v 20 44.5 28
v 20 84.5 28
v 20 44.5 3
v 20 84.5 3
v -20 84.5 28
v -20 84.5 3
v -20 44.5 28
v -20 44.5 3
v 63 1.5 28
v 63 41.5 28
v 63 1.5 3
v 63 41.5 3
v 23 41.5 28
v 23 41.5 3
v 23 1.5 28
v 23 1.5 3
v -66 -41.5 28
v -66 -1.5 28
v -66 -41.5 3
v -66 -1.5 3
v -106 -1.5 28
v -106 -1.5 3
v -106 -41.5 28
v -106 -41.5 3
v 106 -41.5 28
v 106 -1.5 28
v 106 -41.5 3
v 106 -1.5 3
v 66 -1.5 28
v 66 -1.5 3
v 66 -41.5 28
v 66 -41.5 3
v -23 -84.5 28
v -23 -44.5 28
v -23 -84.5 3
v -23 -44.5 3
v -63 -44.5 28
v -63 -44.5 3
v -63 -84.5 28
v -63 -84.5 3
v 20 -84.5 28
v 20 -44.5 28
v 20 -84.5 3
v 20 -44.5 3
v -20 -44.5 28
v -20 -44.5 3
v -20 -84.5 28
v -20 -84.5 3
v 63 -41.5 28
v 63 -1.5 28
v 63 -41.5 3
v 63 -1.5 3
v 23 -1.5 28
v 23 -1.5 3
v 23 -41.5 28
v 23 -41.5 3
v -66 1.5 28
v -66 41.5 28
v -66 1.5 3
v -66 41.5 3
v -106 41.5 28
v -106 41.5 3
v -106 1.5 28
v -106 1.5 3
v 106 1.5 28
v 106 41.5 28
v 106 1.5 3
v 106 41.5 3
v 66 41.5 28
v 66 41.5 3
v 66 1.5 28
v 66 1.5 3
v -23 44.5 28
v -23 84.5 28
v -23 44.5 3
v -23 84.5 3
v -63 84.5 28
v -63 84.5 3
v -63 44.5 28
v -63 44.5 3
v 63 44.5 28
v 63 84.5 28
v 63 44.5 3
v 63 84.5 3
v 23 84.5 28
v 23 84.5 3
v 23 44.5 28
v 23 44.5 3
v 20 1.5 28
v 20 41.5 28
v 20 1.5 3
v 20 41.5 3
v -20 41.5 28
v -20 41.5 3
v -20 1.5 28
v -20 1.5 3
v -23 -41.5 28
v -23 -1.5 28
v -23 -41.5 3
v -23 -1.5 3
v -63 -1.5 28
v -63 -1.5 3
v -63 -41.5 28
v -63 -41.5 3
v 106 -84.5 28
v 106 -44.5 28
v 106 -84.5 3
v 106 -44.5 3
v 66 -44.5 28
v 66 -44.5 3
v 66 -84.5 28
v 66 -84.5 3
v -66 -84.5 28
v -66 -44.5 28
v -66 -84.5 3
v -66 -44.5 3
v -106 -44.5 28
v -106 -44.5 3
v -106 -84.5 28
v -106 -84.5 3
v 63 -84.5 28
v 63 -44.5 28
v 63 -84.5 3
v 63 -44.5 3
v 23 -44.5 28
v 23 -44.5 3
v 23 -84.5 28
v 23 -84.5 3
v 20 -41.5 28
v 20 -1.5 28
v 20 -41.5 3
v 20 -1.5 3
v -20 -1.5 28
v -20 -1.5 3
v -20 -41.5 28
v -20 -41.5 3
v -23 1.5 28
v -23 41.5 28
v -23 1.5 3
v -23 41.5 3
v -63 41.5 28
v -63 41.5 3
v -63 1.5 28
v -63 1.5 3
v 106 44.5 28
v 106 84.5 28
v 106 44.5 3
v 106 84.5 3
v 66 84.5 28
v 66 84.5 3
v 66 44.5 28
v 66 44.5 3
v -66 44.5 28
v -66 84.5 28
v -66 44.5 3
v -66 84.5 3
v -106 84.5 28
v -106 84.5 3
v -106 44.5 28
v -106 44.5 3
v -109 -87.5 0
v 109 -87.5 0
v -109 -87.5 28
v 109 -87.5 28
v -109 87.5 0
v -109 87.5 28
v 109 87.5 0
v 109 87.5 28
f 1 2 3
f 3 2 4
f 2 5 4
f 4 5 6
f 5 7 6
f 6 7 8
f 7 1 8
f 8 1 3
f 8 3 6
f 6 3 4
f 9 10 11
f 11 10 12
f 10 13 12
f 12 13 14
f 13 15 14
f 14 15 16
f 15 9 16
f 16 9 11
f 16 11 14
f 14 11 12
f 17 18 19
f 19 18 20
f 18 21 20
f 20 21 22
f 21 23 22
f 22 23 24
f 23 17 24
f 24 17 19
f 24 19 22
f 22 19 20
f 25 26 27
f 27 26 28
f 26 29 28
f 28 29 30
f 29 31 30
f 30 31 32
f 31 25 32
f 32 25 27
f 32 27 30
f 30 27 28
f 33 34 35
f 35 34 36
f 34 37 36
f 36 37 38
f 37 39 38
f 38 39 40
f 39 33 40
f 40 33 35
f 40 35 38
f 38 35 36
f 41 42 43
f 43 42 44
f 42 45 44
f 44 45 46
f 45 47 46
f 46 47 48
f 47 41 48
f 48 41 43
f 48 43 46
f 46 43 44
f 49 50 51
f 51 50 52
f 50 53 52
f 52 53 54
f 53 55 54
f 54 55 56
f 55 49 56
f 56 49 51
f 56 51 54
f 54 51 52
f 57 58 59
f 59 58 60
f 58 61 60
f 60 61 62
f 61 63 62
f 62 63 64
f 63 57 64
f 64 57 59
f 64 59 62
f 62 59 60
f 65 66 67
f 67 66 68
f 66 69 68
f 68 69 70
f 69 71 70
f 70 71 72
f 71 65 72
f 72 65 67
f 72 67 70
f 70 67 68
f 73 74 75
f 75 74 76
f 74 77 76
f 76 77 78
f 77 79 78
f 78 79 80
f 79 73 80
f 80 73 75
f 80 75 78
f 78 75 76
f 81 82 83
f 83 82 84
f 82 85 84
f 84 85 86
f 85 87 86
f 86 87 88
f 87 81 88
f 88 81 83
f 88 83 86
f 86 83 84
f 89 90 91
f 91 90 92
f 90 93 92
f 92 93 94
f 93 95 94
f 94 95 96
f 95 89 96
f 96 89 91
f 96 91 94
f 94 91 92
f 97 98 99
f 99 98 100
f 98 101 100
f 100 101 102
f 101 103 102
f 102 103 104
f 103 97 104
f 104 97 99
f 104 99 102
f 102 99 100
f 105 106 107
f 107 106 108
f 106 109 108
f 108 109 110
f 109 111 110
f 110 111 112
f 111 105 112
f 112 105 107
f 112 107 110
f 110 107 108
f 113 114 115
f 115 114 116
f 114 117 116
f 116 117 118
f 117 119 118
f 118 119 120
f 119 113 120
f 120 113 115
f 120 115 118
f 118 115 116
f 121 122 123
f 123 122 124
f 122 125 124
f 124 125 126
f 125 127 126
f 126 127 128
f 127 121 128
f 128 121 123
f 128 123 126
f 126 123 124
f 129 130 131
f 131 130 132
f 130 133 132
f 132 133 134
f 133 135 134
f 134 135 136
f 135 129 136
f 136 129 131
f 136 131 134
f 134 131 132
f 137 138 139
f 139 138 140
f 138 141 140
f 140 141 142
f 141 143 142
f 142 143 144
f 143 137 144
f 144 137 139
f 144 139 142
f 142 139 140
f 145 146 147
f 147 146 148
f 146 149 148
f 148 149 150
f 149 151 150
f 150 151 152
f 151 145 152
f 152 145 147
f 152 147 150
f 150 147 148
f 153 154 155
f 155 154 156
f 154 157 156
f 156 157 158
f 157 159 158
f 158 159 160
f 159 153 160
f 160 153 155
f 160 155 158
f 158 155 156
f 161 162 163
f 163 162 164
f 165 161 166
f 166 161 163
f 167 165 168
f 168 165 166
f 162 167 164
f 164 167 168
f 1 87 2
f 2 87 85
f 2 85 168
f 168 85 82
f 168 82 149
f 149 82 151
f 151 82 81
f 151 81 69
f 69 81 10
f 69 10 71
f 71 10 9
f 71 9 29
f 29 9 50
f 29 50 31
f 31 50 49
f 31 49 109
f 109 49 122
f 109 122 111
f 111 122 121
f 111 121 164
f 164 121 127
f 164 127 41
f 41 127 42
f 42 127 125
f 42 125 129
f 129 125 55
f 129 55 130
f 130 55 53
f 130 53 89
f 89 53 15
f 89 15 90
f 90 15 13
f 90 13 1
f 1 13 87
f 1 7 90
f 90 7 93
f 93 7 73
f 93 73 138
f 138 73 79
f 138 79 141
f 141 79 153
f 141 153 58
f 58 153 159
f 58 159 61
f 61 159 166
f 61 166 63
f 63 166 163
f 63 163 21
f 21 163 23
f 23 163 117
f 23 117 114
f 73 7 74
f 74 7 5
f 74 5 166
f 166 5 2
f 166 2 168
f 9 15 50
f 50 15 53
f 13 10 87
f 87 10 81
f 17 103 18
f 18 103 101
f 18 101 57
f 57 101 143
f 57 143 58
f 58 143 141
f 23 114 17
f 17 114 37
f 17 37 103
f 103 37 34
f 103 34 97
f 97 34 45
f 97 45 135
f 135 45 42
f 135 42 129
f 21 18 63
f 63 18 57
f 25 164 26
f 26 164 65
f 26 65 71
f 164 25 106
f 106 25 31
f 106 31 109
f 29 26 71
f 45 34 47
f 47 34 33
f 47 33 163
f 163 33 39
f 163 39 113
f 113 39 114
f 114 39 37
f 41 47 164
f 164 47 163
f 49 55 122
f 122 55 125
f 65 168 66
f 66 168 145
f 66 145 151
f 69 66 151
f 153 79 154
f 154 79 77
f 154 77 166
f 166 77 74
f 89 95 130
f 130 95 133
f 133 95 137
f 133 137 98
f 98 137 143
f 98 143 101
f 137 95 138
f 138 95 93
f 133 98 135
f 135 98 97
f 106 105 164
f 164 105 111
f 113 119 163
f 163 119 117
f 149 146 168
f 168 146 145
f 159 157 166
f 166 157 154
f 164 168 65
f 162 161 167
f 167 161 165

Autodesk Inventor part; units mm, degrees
ref_plane "YZ Plane" through (0, 0, 0) normal (1, 0, 0) x (0, 1, 0)
ref_plane "XZ Plane" through (0, 0, 0) normal (0, 1, 0) x (-1, 0, 0)
ref_plane "XY Plane" through (0, 0, 0) normal (0, 0, 1) x (1, 0, 0)
sketch "Sketch1" plane through (0, 0, 0) normal (0, 0, 1) x (1, 0, 0)
  line L0 (-109, -87.5) -> (109, -87.5)
  line L1 (109, -87.5) -> (109, 87.5)
  line L2 (109, 87.5) -> (-109, 87.5)
  line L3 (-109, 87.5) -> (-109, -87.5)
  line L4 (-109, -87.5) -> (109, 87.5) construction
  line L5 (109, -87.5) -> (-109, 87.5) construction
  point P0 (0, 0)
  dimension "d0" = 218
  dimension "d1" = 175
extrude "Extrusion1" add sketch "Sketch1" along normal blind 28
sketch "Sketch2" plane through (0, 0, 28) normal (0, 0, 1) x (1, 0, 0)
  line L0 (-106, 84.5) -> (-66, 84.5)
  line L1 (-66, 84.5) -> (-66, 44.5)
  line L2 (-66, 44.5) -> (-106, 44.5)
  line L3 (-106, 44.5) -> (-106, 84.5)
  line L4 (-106, 84.5) -> (-66, 44.5) construction
  line L5 (-66, 84.5) -> (-106, 44.5) construction
  line L6 (109, 87.5) -> (-109, 87.5) projected
  line L7 (-109, 87.5) -> (-109, -87.5) projected
  line L8 (-63, 84.5) -> (-23, 84.5)
  line L9 (-23, 84.5) -> (-23, 44.5)
  line L10 (-23, 44.5) -> (-63, 44.5)
  line L11 (-63, 44.5) -> (-63, 84.5)
  line L12 (-63, 84.5) -> (-23, 44.5) construction
  line L13 (-23, 84.5) -> (-63, 44.5) construction
  line L14 (-20, 84.5) -> (20, 84.5)
  line L15 (20, 84.5) -> (20, 44.5)
  line L16 (20, 44.5) -> (-20, 44.5)
  line L17 (-20, 44.5) -> (-20, 84.5)
  line L18 (-20, 84.5) -> (20, 44.5) construction
  line L19 (20, 84.5) -> (-20, 44.5) construction
  line L20 (23, 84.5) -> (63, 84.5)
  line L21 (63, 84.5) -> (63, 44.5)
  line L22 (63, 44.5) -> (23, 44.5)
  line L23 (23, 44.5) -> (23, 84.5)
  line L24 (23, 84.5) -> (63, 44.5) construction
  line L25 (63, 84.5) -> (23, 44.5) construction
  line L26 (66, 84.5) -> (106, 84.5)
  line L27 (106, 84.5) -> (106, 44.5)
  line L28 (106, 44.5) -> (66, 44.5)
  line L29 (66, 44.5) -> (66, 84.5)
  line L30 (66, 84.5) -> (106, 44.5) construction
  line L31 (106, 84.5) -> (66, 44.5) construction
  line L32 (-106, 41.5) -> (-66, 41.5)
  line L33 (-66, 41.5) -> (-66, 1.5)
  line L34 (-66, 1.5) -> (-106, 1.5)
  line L35 (-106, 1.5) -> (-106, 41.5)
  line L36 (-106, 41.5) -> (-66, 1.5) construction
  line L37 (-66, 41.5) -> (-106, 1.5) construction
  line L38 (-63, 41.5) -> (-23, 41.5)
  line L39 (-23, 41.5) -> (-23, 1.5)
  line L40 (-23, 1.5) -> (-63, 1.5)
  line L41 (-63, 1.5) -> (-63, 41.5)
  line L42 (-63, 41.5) -> (-23, 1.5) construction
  line L43 (-23, 41.5) -> (-63, 1.5) construction
  line L44 (-20, 41.5) -> (20, 41.5)
  line L45 (20, 41.5) -> (20, 1.5)
  line L46 (20, 1.5) -> (-20, 1.5)
  line L47 (-20, 1.5) -> (-20, 41.5)
  line L48 (-20, 41.5) -> (20, 1.5) construction
  line L49 (20, 41.5) -> (-20, 1.5) construction
  line L50 (23, 41.5) -> (63, 41.5)
  line L51 (63, 41.5) -> (63, 1.5)
  line L52 (63, 1.5) -> (23, 1.5)
  line L53 (23, 1.5) -> (23, 41.5)
  line L54 (23, 41.5) -> (63, 1.5) construction
  line L55 (63, 41.5) -> (23, 1.5) construction
  line L56 (66, 41.5) -> (106, 41.5)
  line L57 (106, 41.5) -> (106, 1.5)
  line L58 (106, 1.5) -> (66, 1.5)
  line L59 (66, 1.5) -> (66, 41.5)
  line L60 (66, 41.5) -> (106, 1.5) construction
  line L61 (106, 41.5) -> (66, 1.5) construction
  line L62 (-106, -1.5) -> (-66, -1.5)
  line L63 (-66, -1.5) -> (-66, -41.5)
  line L64 (-66, -41.5) -> (-106, -41.5)
  line L65 (-106, -41.5) -> (-106, -1.5)
  line L66 (-106, -1.5) -> (-66, -41.5) construction
  line L67 (-66, -1.5) -> (-106, -41.5) construction
  line L68 (-63, -1.5) -> (-23, -1.5)
  line L69 (-23, -1.5) -> (-23, -41.5)
  line L70 (-23, -41.5) -> (-63, -41.5)
  line L71 (-63, -41.5) -> (-63, -1.5)
  line L72 (-63, -1.5) -> (-23, -41.5) construction
  line L73 (-23, -1.5) -> (-63, -41.5) construction
  line L74 (-20, -1.5) -> (20, -1.5)
  line L75 (20, -1.5) -> (20, -41.5)
  line L76 (20, -41.5) -> (-20, -41.5)
  line L77 (-20, -41.5) -> (-20, -1.5)
  line L78 (-20, -1.5) -> (20, -41.5) construction
  line L79 (20, -1.5) -> (-20, -41.5) construction
  line L80 (23, -1.5) -> (63, -1.5)
  line L81 (63, -1.5) -> (63, -41.5)
  line L82 (63, -41.5) -> (23, -41.5)
  line L83 (23, -41.5) -> (23, -1.5)
  line L84 (23, -1.5) -> (63, -41.5) construction
  line L85 (63, -1.5) -> (23, -41.5) construction
  line L86 (66, -1.5) -> (106, -1.5)
  line L87 (106, -1.5) -> (106, -41.5)
  line L88 (106, -41.5) -> (66, -41.5)
  line L89 (66, -41.5) -> (66, -1.5)
  line L90 (66, -1.5) -> (106, -41.5) construction
  line L91 (106, -1.5) -> (66, -41.5) construction
  line L92 (-106, -44.5) -> (-66, -44.5)
  line L93 (-66, -44.5) -> (-66, -84.5)
  line L94 (-66, -84.5) -> (-106, -84.5)
  line L95 (-106, -84.5) -> (-106, -44.5)
  line L96 (-106, -44.5) -> (-66, -84.5) construction
  line L97 (-66, -44.5) -> (-106, -84.5) construction
  line L98 (-63, -44.5) -> (-23, -44.5)
  line L99 (-23, -44.5) -> (-23, -84.5)
  line L100 (-23, -84.5) -> (-63, -84.5)
  line L101 (-63, -84.5) -> (-63, -44.5)
  line L102 (-63, -44.5) -> (-23, -84.5) construction
  line L103 (-23, -44.5) -> (-63, -84.5) construction
  line L104 (-20, -44.5) -> (20, -44.5)
  line L105 (20, -44.5) -> (20, -84.5)
  line L106 (20, -84.5) -> (-20, -84.5)
  line L107 (-20, -84.5) -> (-20, -44.5)
  line L108 (-20, -44.5) -> (20, -84.5) construction
  line L109 (20, -44.5) -> (-20, -84.5) construction
  line L110 (23, -44.5) -> (63, -44.5)
  line L111 (63, -44.5) -> (63, -84.5)
  line L112 (63, -84.5) -> (23, -84.5)
  line L113 (23, -84.5) -> (23, -44.5)
  line L114 (23, -44.5) -> (63, -84.5) construction
  line L115 (63, -44.5) -> (23, -84.5) construction
  line L116 (66, -44.5) -> (106, -44.5)
  line L117 (106, -44.5) -> (106, -84.5)
  line L118 (106, -84.5) -> (66, -84.5)
  line L119 (66, -84.5) -> (66, -44.5)
  line L120 (66, -44.5) -> (106, -84.5) construction
  line L121 (106, -44.5) -> (66, -84.5) construction
  point P0 (0, 0)
  point P1 (-86, 64.5)
  point P2 (-43, 64.5)
  point P3 (0, 64.5)
  point P4 (43, 64.5)
  point P5 (86, 64.5)
  point P6 (-86, 21.5)
  point P7 (-43, 21.5)
  point P8 (0, 21.5)
  point P9 (43, 21.5)
  point P10 (86, 21.5)
  point P11 (-86, -21.5)
  point P12 (-43, -21.5)
  point P13 (0, -21.5)
  point P14 (43, -21.5)
  point P15 (86, -21.5)
  point P16 (-86, -64.5)
  point P17 (-43, -64.5)
  point P18 (0, -64.5)
  point P19 (43, -64.5)
  point P20 (86, -64.5)
  dimension "d4" = 40
  dimension "d5" = 3
  dimension "d6" = 3
  dimension "d7" = 40
  dimension "d10" = 43
  dimension "d13" = 43
extrude "Extrusion2" cut sketch "Sketch2" against normal blind 25
equation "\"d0\" = box_length"
equation "\"d1\" = box_width"
equation "\"d2\" = hole_height + wall"
equation "\"d4\" = hole"
equation "\"d5\" = wall"
equation "\"d6\" = wall"
equation "\"d7\" = hole"
equation "\"d10\" = hole + wall"
equation "\"d13\" = hole + wall"
equation "\"d16\" = hole_height"
equation "\"hole\" = 40"
equation "\"wall\" = 3"
equation "\"hole_height\" = 25"
equation "\"box_length\" = 218"
equation "\"box_width\" = 175"
properties part number "RatPelletBox_v01"
